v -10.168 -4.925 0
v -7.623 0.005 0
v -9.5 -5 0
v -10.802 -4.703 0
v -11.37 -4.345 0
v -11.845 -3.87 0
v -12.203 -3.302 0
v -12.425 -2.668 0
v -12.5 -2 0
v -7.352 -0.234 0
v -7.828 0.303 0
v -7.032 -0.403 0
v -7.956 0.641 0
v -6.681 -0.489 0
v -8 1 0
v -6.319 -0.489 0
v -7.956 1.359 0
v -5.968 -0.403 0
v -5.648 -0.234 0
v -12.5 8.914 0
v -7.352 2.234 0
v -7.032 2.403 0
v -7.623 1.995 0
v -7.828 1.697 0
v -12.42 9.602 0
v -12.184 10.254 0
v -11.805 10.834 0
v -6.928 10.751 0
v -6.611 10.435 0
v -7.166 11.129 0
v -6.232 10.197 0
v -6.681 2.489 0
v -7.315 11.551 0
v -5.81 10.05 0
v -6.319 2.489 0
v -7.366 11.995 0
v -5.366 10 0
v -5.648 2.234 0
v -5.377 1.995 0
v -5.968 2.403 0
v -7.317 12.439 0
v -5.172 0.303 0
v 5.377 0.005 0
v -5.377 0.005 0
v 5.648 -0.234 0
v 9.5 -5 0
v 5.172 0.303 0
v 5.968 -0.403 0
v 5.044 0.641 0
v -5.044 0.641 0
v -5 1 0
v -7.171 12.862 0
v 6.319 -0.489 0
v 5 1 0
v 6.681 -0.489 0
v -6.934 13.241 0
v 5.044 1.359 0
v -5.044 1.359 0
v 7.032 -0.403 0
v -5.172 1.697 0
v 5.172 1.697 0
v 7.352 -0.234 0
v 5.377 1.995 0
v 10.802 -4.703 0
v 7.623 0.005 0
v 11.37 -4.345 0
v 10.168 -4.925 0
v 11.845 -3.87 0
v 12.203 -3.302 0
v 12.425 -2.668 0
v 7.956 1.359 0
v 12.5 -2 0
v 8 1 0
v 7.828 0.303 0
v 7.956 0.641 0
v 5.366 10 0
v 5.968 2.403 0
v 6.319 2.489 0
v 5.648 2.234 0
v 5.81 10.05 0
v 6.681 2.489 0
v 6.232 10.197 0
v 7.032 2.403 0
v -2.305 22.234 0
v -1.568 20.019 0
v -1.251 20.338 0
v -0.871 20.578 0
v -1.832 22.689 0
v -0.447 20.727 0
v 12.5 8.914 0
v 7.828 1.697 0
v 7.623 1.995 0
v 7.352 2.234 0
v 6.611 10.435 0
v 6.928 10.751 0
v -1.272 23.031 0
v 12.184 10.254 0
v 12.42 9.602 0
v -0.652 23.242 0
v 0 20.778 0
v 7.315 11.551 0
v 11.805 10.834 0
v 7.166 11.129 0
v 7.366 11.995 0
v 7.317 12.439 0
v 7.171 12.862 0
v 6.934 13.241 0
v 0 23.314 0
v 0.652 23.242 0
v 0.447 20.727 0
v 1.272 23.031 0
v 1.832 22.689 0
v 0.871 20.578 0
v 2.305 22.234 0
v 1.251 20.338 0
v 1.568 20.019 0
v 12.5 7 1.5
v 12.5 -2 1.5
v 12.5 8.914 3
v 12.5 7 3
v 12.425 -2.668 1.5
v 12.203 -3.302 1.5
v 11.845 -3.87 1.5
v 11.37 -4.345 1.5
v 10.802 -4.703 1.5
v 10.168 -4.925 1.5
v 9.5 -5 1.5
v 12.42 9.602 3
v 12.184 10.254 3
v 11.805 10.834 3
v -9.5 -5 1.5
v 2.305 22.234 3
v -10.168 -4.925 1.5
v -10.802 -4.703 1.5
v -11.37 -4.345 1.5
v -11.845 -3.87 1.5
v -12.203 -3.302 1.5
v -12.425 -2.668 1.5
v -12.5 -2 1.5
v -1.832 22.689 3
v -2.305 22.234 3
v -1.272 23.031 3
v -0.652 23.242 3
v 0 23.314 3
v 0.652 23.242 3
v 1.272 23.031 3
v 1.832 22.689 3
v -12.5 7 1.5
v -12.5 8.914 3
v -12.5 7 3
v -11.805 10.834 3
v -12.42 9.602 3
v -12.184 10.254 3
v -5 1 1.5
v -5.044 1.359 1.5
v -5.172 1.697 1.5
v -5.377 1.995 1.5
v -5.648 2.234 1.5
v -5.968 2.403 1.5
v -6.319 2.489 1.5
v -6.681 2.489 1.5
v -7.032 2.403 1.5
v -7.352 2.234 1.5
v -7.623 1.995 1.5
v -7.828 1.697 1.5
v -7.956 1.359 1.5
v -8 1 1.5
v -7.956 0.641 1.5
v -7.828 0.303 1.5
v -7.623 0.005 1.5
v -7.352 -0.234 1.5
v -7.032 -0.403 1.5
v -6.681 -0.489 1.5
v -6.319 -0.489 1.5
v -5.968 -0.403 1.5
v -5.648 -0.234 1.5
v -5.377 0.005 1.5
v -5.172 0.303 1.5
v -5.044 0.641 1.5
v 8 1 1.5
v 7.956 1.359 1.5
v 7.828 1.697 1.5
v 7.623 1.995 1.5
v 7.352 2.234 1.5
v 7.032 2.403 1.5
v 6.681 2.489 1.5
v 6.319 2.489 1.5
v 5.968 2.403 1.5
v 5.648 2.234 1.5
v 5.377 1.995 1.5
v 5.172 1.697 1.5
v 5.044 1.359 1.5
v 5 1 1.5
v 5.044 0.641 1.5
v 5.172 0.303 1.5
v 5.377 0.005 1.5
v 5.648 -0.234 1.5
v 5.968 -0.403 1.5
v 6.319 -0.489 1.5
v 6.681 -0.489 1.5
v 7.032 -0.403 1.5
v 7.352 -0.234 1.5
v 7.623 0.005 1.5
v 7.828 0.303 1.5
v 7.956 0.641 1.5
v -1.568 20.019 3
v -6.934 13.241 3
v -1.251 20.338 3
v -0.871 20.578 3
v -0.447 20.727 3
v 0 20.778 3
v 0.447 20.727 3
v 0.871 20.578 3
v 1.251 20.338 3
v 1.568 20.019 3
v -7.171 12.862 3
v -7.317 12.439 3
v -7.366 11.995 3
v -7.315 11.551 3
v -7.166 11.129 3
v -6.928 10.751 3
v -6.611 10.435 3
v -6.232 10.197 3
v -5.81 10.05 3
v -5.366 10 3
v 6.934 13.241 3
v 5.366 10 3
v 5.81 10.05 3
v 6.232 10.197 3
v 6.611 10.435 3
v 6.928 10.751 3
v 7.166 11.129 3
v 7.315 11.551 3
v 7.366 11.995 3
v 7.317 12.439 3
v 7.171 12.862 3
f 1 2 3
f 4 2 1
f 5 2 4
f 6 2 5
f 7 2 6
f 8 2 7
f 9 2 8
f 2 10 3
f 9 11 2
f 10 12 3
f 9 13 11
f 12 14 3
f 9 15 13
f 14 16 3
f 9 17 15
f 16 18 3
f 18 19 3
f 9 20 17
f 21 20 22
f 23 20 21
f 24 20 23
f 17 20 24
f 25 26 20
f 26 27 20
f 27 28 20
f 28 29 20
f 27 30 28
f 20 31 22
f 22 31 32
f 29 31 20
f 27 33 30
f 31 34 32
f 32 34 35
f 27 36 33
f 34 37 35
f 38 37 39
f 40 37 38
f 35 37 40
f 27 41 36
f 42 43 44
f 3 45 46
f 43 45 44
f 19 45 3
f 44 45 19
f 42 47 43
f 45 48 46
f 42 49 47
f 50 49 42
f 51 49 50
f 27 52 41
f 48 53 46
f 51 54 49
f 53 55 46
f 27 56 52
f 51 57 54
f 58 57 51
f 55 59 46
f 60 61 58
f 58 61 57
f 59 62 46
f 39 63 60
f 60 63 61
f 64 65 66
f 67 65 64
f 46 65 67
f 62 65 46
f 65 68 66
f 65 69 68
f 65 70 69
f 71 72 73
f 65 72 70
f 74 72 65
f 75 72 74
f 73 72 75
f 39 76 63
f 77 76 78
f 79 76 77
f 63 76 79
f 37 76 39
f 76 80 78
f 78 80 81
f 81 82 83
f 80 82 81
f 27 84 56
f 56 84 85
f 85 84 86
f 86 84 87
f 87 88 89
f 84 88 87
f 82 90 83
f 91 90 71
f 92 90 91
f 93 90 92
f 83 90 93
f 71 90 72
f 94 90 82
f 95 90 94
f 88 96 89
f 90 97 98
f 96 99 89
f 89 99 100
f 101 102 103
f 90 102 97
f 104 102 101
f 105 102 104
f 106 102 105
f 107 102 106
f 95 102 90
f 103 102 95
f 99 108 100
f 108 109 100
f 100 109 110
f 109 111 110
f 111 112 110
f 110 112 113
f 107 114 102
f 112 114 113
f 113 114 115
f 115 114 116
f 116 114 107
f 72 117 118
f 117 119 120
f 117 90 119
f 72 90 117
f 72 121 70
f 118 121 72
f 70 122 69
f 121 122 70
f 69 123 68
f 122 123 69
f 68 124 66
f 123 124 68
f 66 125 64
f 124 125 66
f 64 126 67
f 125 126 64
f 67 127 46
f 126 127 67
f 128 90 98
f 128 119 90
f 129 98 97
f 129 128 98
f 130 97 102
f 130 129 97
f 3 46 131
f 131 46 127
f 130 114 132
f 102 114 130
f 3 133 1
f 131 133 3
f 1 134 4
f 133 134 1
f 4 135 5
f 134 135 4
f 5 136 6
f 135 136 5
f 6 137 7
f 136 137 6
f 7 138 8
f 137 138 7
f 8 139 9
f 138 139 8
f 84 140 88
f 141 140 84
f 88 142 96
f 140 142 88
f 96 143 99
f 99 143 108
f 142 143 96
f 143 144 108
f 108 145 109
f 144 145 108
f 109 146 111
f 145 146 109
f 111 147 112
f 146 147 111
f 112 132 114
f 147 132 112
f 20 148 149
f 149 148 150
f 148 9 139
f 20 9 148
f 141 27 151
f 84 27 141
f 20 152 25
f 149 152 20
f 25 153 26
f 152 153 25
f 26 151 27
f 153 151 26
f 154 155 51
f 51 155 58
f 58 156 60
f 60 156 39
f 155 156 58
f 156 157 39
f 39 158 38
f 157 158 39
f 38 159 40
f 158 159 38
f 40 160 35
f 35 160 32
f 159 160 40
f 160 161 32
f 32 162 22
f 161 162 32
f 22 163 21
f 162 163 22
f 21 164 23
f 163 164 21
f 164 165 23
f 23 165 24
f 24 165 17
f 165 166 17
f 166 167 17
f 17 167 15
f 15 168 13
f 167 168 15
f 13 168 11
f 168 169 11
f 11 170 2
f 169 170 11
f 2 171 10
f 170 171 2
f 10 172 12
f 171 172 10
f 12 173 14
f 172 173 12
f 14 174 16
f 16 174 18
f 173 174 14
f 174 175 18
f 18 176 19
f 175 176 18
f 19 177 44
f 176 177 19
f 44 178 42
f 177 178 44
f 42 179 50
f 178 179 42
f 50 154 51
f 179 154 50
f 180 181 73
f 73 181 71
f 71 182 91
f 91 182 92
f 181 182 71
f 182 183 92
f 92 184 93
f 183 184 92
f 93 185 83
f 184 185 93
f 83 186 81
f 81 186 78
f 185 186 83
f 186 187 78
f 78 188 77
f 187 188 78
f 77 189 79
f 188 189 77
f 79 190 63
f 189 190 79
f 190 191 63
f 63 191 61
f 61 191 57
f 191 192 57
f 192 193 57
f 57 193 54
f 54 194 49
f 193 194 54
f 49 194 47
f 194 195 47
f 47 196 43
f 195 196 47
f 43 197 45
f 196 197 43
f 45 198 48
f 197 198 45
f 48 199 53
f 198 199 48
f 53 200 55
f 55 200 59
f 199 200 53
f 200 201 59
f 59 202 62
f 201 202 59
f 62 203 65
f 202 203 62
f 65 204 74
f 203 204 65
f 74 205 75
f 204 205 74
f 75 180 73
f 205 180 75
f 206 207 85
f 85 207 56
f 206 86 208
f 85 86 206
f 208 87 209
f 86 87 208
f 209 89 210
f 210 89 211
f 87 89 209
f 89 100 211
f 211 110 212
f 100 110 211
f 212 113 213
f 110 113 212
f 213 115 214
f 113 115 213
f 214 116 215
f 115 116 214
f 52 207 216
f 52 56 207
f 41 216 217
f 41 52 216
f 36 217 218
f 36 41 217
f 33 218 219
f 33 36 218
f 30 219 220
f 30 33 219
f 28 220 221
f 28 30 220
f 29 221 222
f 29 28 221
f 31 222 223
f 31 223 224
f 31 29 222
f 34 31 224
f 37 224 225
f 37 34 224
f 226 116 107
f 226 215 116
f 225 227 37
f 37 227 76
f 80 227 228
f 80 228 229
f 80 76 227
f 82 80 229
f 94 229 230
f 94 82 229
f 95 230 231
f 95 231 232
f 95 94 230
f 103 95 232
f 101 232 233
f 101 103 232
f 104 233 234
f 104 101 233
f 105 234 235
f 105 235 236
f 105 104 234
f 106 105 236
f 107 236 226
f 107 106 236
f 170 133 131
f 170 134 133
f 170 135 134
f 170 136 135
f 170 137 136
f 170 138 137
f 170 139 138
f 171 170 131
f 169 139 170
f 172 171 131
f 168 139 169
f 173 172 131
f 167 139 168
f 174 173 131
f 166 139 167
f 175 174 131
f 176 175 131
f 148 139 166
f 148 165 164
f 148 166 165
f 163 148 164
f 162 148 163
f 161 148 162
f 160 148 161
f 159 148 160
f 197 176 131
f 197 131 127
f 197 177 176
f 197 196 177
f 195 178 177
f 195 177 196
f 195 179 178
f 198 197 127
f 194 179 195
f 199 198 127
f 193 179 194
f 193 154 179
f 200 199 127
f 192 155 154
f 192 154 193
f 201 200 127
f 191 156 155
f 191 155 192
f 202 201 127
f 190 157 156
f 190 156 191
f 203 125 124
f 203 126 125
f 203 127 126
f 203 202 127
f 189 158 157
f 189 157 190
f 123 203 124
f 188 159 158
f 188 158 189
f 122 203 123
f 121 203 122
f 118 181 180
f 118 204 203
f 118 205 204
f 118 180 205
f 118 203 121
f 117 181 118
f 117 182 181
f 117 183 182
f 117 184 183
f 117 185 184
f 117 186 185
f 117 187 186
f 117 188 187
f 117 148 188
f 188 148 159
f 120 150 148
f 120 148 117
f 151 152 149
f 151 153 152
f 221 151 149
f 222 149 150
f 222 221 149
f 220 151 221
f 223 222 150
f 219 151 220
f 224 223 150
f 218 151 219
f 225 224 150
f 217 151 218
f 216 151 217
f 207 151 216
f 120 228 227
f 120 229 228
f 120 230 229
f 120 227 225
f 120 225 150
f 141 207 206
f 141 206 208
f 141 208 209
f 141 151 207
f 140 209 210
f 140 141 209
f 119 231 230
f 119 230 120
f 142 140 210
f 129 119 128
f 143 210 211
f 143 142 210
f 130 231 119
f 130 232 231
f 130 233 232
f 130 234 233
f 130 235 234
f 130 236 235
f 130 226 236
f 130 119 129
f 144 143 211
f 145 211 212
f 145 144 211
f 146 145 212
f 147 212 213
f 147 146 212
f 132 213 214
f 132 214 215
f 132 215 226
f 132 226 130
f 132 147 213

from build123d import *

# Parameters (mm, degrees)
SKETCH003_R      = 1.5
EXTRUDE003_DEPTH = 1.5
EXTRUDE002_DEPTH = 3
SKETCH001_W      = 25
SKETCH001_H      = 12
EXTRUDE001_DEPTH = 1.5
EXTRUDE_DEPTH    = 3
FILLET_R         = 2
FILLET001_R      = 3
FILLET002_R      = 3


with BuildPart() as extrude003:
    # Sketch003 (on Face18 of Fillet002) → Extrude003 (new body)
    with BuildSketch(Plane.XY.offset(1.5)):
        with Locations((-6.5, 1)):
            Circle(SKETCH003_R)
        with Locations((6.5, 1)):
            Circle(SKETCH003_R)
    extrude(amount=-EXTRUDE003_DEPTH)


with BuildPart() as extrude002:
    # Sketch002 (on Face8 of Cut) → Extrude002 (new body)
    with BuildSketch(Plane.XY.offset(3)):
        Polygon((0, 22), (-9.5, 10), (9.5, 10), align=None)
    extrude(amount=-EXTRUDE002_DEPTH)


with BuildPart() as extrude001:
    # Sketch001 (on Face7 of Extrude) → Extrude001 (new body)
    with BuildSketch(Plane.XY.offset(3)):
        with Locations((0, 1)):
            Rectangle(SKETCH001_W, SKETCH001_H)
    extrude(amount=-EXTRUDE001_DEPTH)


with BuildPart() as cut002:
    # Sketch → Extrude (new body)
    with BuildSketch(Plane.XY):
        Polygon((-12.5, -5), (12.5, -5), (12.5, 10), (0, 25), (-12.5, 10), align=None)
    extrude(amount=EXTRUDE_DEPTH)

    # Cut: cut Extrude001
    add(extrude001.part, mode=Mode.SUBTRACT)

    # Cut001: cut Extrude002
    add(extrude002.part, mode=Mode.SUBTRACT)

    # Fillet
    fillet_edges = [cut002.edges().sort_by_distance(p)[0] for p in [
        (0, 22, 1.5),
        (-9.5, 10, 1.5),
        (9.5, 10, 1.5),
    ]]
    fillet(fillet_edges, radius=FILLET_R)

    # Fillet001
    fillet001_edges = [cut002.edges().sort_by_distance(p)[0] for p in [
        (-12.5, 10, 1.5),
        (12.5, 10, 1.5),
        (0, 25, 1.5),
    ]]
    fillet(fillet001_edges, radius=FILLET001_R)

    # Fillet002
    fillet002_edges = [cut002.edges().sort_by_distance(p)[0] for p in [
        (12.5, -5, 0.75),
        (-12.5, -5, 0.75),
    ]]
    fillet(fillet002_edges, radius=FILLET002_R)

    # Cut002: cut Extrude003
    add(extrude003.part, mode=Mode.SUBTRACT)


solid = cut002.part
